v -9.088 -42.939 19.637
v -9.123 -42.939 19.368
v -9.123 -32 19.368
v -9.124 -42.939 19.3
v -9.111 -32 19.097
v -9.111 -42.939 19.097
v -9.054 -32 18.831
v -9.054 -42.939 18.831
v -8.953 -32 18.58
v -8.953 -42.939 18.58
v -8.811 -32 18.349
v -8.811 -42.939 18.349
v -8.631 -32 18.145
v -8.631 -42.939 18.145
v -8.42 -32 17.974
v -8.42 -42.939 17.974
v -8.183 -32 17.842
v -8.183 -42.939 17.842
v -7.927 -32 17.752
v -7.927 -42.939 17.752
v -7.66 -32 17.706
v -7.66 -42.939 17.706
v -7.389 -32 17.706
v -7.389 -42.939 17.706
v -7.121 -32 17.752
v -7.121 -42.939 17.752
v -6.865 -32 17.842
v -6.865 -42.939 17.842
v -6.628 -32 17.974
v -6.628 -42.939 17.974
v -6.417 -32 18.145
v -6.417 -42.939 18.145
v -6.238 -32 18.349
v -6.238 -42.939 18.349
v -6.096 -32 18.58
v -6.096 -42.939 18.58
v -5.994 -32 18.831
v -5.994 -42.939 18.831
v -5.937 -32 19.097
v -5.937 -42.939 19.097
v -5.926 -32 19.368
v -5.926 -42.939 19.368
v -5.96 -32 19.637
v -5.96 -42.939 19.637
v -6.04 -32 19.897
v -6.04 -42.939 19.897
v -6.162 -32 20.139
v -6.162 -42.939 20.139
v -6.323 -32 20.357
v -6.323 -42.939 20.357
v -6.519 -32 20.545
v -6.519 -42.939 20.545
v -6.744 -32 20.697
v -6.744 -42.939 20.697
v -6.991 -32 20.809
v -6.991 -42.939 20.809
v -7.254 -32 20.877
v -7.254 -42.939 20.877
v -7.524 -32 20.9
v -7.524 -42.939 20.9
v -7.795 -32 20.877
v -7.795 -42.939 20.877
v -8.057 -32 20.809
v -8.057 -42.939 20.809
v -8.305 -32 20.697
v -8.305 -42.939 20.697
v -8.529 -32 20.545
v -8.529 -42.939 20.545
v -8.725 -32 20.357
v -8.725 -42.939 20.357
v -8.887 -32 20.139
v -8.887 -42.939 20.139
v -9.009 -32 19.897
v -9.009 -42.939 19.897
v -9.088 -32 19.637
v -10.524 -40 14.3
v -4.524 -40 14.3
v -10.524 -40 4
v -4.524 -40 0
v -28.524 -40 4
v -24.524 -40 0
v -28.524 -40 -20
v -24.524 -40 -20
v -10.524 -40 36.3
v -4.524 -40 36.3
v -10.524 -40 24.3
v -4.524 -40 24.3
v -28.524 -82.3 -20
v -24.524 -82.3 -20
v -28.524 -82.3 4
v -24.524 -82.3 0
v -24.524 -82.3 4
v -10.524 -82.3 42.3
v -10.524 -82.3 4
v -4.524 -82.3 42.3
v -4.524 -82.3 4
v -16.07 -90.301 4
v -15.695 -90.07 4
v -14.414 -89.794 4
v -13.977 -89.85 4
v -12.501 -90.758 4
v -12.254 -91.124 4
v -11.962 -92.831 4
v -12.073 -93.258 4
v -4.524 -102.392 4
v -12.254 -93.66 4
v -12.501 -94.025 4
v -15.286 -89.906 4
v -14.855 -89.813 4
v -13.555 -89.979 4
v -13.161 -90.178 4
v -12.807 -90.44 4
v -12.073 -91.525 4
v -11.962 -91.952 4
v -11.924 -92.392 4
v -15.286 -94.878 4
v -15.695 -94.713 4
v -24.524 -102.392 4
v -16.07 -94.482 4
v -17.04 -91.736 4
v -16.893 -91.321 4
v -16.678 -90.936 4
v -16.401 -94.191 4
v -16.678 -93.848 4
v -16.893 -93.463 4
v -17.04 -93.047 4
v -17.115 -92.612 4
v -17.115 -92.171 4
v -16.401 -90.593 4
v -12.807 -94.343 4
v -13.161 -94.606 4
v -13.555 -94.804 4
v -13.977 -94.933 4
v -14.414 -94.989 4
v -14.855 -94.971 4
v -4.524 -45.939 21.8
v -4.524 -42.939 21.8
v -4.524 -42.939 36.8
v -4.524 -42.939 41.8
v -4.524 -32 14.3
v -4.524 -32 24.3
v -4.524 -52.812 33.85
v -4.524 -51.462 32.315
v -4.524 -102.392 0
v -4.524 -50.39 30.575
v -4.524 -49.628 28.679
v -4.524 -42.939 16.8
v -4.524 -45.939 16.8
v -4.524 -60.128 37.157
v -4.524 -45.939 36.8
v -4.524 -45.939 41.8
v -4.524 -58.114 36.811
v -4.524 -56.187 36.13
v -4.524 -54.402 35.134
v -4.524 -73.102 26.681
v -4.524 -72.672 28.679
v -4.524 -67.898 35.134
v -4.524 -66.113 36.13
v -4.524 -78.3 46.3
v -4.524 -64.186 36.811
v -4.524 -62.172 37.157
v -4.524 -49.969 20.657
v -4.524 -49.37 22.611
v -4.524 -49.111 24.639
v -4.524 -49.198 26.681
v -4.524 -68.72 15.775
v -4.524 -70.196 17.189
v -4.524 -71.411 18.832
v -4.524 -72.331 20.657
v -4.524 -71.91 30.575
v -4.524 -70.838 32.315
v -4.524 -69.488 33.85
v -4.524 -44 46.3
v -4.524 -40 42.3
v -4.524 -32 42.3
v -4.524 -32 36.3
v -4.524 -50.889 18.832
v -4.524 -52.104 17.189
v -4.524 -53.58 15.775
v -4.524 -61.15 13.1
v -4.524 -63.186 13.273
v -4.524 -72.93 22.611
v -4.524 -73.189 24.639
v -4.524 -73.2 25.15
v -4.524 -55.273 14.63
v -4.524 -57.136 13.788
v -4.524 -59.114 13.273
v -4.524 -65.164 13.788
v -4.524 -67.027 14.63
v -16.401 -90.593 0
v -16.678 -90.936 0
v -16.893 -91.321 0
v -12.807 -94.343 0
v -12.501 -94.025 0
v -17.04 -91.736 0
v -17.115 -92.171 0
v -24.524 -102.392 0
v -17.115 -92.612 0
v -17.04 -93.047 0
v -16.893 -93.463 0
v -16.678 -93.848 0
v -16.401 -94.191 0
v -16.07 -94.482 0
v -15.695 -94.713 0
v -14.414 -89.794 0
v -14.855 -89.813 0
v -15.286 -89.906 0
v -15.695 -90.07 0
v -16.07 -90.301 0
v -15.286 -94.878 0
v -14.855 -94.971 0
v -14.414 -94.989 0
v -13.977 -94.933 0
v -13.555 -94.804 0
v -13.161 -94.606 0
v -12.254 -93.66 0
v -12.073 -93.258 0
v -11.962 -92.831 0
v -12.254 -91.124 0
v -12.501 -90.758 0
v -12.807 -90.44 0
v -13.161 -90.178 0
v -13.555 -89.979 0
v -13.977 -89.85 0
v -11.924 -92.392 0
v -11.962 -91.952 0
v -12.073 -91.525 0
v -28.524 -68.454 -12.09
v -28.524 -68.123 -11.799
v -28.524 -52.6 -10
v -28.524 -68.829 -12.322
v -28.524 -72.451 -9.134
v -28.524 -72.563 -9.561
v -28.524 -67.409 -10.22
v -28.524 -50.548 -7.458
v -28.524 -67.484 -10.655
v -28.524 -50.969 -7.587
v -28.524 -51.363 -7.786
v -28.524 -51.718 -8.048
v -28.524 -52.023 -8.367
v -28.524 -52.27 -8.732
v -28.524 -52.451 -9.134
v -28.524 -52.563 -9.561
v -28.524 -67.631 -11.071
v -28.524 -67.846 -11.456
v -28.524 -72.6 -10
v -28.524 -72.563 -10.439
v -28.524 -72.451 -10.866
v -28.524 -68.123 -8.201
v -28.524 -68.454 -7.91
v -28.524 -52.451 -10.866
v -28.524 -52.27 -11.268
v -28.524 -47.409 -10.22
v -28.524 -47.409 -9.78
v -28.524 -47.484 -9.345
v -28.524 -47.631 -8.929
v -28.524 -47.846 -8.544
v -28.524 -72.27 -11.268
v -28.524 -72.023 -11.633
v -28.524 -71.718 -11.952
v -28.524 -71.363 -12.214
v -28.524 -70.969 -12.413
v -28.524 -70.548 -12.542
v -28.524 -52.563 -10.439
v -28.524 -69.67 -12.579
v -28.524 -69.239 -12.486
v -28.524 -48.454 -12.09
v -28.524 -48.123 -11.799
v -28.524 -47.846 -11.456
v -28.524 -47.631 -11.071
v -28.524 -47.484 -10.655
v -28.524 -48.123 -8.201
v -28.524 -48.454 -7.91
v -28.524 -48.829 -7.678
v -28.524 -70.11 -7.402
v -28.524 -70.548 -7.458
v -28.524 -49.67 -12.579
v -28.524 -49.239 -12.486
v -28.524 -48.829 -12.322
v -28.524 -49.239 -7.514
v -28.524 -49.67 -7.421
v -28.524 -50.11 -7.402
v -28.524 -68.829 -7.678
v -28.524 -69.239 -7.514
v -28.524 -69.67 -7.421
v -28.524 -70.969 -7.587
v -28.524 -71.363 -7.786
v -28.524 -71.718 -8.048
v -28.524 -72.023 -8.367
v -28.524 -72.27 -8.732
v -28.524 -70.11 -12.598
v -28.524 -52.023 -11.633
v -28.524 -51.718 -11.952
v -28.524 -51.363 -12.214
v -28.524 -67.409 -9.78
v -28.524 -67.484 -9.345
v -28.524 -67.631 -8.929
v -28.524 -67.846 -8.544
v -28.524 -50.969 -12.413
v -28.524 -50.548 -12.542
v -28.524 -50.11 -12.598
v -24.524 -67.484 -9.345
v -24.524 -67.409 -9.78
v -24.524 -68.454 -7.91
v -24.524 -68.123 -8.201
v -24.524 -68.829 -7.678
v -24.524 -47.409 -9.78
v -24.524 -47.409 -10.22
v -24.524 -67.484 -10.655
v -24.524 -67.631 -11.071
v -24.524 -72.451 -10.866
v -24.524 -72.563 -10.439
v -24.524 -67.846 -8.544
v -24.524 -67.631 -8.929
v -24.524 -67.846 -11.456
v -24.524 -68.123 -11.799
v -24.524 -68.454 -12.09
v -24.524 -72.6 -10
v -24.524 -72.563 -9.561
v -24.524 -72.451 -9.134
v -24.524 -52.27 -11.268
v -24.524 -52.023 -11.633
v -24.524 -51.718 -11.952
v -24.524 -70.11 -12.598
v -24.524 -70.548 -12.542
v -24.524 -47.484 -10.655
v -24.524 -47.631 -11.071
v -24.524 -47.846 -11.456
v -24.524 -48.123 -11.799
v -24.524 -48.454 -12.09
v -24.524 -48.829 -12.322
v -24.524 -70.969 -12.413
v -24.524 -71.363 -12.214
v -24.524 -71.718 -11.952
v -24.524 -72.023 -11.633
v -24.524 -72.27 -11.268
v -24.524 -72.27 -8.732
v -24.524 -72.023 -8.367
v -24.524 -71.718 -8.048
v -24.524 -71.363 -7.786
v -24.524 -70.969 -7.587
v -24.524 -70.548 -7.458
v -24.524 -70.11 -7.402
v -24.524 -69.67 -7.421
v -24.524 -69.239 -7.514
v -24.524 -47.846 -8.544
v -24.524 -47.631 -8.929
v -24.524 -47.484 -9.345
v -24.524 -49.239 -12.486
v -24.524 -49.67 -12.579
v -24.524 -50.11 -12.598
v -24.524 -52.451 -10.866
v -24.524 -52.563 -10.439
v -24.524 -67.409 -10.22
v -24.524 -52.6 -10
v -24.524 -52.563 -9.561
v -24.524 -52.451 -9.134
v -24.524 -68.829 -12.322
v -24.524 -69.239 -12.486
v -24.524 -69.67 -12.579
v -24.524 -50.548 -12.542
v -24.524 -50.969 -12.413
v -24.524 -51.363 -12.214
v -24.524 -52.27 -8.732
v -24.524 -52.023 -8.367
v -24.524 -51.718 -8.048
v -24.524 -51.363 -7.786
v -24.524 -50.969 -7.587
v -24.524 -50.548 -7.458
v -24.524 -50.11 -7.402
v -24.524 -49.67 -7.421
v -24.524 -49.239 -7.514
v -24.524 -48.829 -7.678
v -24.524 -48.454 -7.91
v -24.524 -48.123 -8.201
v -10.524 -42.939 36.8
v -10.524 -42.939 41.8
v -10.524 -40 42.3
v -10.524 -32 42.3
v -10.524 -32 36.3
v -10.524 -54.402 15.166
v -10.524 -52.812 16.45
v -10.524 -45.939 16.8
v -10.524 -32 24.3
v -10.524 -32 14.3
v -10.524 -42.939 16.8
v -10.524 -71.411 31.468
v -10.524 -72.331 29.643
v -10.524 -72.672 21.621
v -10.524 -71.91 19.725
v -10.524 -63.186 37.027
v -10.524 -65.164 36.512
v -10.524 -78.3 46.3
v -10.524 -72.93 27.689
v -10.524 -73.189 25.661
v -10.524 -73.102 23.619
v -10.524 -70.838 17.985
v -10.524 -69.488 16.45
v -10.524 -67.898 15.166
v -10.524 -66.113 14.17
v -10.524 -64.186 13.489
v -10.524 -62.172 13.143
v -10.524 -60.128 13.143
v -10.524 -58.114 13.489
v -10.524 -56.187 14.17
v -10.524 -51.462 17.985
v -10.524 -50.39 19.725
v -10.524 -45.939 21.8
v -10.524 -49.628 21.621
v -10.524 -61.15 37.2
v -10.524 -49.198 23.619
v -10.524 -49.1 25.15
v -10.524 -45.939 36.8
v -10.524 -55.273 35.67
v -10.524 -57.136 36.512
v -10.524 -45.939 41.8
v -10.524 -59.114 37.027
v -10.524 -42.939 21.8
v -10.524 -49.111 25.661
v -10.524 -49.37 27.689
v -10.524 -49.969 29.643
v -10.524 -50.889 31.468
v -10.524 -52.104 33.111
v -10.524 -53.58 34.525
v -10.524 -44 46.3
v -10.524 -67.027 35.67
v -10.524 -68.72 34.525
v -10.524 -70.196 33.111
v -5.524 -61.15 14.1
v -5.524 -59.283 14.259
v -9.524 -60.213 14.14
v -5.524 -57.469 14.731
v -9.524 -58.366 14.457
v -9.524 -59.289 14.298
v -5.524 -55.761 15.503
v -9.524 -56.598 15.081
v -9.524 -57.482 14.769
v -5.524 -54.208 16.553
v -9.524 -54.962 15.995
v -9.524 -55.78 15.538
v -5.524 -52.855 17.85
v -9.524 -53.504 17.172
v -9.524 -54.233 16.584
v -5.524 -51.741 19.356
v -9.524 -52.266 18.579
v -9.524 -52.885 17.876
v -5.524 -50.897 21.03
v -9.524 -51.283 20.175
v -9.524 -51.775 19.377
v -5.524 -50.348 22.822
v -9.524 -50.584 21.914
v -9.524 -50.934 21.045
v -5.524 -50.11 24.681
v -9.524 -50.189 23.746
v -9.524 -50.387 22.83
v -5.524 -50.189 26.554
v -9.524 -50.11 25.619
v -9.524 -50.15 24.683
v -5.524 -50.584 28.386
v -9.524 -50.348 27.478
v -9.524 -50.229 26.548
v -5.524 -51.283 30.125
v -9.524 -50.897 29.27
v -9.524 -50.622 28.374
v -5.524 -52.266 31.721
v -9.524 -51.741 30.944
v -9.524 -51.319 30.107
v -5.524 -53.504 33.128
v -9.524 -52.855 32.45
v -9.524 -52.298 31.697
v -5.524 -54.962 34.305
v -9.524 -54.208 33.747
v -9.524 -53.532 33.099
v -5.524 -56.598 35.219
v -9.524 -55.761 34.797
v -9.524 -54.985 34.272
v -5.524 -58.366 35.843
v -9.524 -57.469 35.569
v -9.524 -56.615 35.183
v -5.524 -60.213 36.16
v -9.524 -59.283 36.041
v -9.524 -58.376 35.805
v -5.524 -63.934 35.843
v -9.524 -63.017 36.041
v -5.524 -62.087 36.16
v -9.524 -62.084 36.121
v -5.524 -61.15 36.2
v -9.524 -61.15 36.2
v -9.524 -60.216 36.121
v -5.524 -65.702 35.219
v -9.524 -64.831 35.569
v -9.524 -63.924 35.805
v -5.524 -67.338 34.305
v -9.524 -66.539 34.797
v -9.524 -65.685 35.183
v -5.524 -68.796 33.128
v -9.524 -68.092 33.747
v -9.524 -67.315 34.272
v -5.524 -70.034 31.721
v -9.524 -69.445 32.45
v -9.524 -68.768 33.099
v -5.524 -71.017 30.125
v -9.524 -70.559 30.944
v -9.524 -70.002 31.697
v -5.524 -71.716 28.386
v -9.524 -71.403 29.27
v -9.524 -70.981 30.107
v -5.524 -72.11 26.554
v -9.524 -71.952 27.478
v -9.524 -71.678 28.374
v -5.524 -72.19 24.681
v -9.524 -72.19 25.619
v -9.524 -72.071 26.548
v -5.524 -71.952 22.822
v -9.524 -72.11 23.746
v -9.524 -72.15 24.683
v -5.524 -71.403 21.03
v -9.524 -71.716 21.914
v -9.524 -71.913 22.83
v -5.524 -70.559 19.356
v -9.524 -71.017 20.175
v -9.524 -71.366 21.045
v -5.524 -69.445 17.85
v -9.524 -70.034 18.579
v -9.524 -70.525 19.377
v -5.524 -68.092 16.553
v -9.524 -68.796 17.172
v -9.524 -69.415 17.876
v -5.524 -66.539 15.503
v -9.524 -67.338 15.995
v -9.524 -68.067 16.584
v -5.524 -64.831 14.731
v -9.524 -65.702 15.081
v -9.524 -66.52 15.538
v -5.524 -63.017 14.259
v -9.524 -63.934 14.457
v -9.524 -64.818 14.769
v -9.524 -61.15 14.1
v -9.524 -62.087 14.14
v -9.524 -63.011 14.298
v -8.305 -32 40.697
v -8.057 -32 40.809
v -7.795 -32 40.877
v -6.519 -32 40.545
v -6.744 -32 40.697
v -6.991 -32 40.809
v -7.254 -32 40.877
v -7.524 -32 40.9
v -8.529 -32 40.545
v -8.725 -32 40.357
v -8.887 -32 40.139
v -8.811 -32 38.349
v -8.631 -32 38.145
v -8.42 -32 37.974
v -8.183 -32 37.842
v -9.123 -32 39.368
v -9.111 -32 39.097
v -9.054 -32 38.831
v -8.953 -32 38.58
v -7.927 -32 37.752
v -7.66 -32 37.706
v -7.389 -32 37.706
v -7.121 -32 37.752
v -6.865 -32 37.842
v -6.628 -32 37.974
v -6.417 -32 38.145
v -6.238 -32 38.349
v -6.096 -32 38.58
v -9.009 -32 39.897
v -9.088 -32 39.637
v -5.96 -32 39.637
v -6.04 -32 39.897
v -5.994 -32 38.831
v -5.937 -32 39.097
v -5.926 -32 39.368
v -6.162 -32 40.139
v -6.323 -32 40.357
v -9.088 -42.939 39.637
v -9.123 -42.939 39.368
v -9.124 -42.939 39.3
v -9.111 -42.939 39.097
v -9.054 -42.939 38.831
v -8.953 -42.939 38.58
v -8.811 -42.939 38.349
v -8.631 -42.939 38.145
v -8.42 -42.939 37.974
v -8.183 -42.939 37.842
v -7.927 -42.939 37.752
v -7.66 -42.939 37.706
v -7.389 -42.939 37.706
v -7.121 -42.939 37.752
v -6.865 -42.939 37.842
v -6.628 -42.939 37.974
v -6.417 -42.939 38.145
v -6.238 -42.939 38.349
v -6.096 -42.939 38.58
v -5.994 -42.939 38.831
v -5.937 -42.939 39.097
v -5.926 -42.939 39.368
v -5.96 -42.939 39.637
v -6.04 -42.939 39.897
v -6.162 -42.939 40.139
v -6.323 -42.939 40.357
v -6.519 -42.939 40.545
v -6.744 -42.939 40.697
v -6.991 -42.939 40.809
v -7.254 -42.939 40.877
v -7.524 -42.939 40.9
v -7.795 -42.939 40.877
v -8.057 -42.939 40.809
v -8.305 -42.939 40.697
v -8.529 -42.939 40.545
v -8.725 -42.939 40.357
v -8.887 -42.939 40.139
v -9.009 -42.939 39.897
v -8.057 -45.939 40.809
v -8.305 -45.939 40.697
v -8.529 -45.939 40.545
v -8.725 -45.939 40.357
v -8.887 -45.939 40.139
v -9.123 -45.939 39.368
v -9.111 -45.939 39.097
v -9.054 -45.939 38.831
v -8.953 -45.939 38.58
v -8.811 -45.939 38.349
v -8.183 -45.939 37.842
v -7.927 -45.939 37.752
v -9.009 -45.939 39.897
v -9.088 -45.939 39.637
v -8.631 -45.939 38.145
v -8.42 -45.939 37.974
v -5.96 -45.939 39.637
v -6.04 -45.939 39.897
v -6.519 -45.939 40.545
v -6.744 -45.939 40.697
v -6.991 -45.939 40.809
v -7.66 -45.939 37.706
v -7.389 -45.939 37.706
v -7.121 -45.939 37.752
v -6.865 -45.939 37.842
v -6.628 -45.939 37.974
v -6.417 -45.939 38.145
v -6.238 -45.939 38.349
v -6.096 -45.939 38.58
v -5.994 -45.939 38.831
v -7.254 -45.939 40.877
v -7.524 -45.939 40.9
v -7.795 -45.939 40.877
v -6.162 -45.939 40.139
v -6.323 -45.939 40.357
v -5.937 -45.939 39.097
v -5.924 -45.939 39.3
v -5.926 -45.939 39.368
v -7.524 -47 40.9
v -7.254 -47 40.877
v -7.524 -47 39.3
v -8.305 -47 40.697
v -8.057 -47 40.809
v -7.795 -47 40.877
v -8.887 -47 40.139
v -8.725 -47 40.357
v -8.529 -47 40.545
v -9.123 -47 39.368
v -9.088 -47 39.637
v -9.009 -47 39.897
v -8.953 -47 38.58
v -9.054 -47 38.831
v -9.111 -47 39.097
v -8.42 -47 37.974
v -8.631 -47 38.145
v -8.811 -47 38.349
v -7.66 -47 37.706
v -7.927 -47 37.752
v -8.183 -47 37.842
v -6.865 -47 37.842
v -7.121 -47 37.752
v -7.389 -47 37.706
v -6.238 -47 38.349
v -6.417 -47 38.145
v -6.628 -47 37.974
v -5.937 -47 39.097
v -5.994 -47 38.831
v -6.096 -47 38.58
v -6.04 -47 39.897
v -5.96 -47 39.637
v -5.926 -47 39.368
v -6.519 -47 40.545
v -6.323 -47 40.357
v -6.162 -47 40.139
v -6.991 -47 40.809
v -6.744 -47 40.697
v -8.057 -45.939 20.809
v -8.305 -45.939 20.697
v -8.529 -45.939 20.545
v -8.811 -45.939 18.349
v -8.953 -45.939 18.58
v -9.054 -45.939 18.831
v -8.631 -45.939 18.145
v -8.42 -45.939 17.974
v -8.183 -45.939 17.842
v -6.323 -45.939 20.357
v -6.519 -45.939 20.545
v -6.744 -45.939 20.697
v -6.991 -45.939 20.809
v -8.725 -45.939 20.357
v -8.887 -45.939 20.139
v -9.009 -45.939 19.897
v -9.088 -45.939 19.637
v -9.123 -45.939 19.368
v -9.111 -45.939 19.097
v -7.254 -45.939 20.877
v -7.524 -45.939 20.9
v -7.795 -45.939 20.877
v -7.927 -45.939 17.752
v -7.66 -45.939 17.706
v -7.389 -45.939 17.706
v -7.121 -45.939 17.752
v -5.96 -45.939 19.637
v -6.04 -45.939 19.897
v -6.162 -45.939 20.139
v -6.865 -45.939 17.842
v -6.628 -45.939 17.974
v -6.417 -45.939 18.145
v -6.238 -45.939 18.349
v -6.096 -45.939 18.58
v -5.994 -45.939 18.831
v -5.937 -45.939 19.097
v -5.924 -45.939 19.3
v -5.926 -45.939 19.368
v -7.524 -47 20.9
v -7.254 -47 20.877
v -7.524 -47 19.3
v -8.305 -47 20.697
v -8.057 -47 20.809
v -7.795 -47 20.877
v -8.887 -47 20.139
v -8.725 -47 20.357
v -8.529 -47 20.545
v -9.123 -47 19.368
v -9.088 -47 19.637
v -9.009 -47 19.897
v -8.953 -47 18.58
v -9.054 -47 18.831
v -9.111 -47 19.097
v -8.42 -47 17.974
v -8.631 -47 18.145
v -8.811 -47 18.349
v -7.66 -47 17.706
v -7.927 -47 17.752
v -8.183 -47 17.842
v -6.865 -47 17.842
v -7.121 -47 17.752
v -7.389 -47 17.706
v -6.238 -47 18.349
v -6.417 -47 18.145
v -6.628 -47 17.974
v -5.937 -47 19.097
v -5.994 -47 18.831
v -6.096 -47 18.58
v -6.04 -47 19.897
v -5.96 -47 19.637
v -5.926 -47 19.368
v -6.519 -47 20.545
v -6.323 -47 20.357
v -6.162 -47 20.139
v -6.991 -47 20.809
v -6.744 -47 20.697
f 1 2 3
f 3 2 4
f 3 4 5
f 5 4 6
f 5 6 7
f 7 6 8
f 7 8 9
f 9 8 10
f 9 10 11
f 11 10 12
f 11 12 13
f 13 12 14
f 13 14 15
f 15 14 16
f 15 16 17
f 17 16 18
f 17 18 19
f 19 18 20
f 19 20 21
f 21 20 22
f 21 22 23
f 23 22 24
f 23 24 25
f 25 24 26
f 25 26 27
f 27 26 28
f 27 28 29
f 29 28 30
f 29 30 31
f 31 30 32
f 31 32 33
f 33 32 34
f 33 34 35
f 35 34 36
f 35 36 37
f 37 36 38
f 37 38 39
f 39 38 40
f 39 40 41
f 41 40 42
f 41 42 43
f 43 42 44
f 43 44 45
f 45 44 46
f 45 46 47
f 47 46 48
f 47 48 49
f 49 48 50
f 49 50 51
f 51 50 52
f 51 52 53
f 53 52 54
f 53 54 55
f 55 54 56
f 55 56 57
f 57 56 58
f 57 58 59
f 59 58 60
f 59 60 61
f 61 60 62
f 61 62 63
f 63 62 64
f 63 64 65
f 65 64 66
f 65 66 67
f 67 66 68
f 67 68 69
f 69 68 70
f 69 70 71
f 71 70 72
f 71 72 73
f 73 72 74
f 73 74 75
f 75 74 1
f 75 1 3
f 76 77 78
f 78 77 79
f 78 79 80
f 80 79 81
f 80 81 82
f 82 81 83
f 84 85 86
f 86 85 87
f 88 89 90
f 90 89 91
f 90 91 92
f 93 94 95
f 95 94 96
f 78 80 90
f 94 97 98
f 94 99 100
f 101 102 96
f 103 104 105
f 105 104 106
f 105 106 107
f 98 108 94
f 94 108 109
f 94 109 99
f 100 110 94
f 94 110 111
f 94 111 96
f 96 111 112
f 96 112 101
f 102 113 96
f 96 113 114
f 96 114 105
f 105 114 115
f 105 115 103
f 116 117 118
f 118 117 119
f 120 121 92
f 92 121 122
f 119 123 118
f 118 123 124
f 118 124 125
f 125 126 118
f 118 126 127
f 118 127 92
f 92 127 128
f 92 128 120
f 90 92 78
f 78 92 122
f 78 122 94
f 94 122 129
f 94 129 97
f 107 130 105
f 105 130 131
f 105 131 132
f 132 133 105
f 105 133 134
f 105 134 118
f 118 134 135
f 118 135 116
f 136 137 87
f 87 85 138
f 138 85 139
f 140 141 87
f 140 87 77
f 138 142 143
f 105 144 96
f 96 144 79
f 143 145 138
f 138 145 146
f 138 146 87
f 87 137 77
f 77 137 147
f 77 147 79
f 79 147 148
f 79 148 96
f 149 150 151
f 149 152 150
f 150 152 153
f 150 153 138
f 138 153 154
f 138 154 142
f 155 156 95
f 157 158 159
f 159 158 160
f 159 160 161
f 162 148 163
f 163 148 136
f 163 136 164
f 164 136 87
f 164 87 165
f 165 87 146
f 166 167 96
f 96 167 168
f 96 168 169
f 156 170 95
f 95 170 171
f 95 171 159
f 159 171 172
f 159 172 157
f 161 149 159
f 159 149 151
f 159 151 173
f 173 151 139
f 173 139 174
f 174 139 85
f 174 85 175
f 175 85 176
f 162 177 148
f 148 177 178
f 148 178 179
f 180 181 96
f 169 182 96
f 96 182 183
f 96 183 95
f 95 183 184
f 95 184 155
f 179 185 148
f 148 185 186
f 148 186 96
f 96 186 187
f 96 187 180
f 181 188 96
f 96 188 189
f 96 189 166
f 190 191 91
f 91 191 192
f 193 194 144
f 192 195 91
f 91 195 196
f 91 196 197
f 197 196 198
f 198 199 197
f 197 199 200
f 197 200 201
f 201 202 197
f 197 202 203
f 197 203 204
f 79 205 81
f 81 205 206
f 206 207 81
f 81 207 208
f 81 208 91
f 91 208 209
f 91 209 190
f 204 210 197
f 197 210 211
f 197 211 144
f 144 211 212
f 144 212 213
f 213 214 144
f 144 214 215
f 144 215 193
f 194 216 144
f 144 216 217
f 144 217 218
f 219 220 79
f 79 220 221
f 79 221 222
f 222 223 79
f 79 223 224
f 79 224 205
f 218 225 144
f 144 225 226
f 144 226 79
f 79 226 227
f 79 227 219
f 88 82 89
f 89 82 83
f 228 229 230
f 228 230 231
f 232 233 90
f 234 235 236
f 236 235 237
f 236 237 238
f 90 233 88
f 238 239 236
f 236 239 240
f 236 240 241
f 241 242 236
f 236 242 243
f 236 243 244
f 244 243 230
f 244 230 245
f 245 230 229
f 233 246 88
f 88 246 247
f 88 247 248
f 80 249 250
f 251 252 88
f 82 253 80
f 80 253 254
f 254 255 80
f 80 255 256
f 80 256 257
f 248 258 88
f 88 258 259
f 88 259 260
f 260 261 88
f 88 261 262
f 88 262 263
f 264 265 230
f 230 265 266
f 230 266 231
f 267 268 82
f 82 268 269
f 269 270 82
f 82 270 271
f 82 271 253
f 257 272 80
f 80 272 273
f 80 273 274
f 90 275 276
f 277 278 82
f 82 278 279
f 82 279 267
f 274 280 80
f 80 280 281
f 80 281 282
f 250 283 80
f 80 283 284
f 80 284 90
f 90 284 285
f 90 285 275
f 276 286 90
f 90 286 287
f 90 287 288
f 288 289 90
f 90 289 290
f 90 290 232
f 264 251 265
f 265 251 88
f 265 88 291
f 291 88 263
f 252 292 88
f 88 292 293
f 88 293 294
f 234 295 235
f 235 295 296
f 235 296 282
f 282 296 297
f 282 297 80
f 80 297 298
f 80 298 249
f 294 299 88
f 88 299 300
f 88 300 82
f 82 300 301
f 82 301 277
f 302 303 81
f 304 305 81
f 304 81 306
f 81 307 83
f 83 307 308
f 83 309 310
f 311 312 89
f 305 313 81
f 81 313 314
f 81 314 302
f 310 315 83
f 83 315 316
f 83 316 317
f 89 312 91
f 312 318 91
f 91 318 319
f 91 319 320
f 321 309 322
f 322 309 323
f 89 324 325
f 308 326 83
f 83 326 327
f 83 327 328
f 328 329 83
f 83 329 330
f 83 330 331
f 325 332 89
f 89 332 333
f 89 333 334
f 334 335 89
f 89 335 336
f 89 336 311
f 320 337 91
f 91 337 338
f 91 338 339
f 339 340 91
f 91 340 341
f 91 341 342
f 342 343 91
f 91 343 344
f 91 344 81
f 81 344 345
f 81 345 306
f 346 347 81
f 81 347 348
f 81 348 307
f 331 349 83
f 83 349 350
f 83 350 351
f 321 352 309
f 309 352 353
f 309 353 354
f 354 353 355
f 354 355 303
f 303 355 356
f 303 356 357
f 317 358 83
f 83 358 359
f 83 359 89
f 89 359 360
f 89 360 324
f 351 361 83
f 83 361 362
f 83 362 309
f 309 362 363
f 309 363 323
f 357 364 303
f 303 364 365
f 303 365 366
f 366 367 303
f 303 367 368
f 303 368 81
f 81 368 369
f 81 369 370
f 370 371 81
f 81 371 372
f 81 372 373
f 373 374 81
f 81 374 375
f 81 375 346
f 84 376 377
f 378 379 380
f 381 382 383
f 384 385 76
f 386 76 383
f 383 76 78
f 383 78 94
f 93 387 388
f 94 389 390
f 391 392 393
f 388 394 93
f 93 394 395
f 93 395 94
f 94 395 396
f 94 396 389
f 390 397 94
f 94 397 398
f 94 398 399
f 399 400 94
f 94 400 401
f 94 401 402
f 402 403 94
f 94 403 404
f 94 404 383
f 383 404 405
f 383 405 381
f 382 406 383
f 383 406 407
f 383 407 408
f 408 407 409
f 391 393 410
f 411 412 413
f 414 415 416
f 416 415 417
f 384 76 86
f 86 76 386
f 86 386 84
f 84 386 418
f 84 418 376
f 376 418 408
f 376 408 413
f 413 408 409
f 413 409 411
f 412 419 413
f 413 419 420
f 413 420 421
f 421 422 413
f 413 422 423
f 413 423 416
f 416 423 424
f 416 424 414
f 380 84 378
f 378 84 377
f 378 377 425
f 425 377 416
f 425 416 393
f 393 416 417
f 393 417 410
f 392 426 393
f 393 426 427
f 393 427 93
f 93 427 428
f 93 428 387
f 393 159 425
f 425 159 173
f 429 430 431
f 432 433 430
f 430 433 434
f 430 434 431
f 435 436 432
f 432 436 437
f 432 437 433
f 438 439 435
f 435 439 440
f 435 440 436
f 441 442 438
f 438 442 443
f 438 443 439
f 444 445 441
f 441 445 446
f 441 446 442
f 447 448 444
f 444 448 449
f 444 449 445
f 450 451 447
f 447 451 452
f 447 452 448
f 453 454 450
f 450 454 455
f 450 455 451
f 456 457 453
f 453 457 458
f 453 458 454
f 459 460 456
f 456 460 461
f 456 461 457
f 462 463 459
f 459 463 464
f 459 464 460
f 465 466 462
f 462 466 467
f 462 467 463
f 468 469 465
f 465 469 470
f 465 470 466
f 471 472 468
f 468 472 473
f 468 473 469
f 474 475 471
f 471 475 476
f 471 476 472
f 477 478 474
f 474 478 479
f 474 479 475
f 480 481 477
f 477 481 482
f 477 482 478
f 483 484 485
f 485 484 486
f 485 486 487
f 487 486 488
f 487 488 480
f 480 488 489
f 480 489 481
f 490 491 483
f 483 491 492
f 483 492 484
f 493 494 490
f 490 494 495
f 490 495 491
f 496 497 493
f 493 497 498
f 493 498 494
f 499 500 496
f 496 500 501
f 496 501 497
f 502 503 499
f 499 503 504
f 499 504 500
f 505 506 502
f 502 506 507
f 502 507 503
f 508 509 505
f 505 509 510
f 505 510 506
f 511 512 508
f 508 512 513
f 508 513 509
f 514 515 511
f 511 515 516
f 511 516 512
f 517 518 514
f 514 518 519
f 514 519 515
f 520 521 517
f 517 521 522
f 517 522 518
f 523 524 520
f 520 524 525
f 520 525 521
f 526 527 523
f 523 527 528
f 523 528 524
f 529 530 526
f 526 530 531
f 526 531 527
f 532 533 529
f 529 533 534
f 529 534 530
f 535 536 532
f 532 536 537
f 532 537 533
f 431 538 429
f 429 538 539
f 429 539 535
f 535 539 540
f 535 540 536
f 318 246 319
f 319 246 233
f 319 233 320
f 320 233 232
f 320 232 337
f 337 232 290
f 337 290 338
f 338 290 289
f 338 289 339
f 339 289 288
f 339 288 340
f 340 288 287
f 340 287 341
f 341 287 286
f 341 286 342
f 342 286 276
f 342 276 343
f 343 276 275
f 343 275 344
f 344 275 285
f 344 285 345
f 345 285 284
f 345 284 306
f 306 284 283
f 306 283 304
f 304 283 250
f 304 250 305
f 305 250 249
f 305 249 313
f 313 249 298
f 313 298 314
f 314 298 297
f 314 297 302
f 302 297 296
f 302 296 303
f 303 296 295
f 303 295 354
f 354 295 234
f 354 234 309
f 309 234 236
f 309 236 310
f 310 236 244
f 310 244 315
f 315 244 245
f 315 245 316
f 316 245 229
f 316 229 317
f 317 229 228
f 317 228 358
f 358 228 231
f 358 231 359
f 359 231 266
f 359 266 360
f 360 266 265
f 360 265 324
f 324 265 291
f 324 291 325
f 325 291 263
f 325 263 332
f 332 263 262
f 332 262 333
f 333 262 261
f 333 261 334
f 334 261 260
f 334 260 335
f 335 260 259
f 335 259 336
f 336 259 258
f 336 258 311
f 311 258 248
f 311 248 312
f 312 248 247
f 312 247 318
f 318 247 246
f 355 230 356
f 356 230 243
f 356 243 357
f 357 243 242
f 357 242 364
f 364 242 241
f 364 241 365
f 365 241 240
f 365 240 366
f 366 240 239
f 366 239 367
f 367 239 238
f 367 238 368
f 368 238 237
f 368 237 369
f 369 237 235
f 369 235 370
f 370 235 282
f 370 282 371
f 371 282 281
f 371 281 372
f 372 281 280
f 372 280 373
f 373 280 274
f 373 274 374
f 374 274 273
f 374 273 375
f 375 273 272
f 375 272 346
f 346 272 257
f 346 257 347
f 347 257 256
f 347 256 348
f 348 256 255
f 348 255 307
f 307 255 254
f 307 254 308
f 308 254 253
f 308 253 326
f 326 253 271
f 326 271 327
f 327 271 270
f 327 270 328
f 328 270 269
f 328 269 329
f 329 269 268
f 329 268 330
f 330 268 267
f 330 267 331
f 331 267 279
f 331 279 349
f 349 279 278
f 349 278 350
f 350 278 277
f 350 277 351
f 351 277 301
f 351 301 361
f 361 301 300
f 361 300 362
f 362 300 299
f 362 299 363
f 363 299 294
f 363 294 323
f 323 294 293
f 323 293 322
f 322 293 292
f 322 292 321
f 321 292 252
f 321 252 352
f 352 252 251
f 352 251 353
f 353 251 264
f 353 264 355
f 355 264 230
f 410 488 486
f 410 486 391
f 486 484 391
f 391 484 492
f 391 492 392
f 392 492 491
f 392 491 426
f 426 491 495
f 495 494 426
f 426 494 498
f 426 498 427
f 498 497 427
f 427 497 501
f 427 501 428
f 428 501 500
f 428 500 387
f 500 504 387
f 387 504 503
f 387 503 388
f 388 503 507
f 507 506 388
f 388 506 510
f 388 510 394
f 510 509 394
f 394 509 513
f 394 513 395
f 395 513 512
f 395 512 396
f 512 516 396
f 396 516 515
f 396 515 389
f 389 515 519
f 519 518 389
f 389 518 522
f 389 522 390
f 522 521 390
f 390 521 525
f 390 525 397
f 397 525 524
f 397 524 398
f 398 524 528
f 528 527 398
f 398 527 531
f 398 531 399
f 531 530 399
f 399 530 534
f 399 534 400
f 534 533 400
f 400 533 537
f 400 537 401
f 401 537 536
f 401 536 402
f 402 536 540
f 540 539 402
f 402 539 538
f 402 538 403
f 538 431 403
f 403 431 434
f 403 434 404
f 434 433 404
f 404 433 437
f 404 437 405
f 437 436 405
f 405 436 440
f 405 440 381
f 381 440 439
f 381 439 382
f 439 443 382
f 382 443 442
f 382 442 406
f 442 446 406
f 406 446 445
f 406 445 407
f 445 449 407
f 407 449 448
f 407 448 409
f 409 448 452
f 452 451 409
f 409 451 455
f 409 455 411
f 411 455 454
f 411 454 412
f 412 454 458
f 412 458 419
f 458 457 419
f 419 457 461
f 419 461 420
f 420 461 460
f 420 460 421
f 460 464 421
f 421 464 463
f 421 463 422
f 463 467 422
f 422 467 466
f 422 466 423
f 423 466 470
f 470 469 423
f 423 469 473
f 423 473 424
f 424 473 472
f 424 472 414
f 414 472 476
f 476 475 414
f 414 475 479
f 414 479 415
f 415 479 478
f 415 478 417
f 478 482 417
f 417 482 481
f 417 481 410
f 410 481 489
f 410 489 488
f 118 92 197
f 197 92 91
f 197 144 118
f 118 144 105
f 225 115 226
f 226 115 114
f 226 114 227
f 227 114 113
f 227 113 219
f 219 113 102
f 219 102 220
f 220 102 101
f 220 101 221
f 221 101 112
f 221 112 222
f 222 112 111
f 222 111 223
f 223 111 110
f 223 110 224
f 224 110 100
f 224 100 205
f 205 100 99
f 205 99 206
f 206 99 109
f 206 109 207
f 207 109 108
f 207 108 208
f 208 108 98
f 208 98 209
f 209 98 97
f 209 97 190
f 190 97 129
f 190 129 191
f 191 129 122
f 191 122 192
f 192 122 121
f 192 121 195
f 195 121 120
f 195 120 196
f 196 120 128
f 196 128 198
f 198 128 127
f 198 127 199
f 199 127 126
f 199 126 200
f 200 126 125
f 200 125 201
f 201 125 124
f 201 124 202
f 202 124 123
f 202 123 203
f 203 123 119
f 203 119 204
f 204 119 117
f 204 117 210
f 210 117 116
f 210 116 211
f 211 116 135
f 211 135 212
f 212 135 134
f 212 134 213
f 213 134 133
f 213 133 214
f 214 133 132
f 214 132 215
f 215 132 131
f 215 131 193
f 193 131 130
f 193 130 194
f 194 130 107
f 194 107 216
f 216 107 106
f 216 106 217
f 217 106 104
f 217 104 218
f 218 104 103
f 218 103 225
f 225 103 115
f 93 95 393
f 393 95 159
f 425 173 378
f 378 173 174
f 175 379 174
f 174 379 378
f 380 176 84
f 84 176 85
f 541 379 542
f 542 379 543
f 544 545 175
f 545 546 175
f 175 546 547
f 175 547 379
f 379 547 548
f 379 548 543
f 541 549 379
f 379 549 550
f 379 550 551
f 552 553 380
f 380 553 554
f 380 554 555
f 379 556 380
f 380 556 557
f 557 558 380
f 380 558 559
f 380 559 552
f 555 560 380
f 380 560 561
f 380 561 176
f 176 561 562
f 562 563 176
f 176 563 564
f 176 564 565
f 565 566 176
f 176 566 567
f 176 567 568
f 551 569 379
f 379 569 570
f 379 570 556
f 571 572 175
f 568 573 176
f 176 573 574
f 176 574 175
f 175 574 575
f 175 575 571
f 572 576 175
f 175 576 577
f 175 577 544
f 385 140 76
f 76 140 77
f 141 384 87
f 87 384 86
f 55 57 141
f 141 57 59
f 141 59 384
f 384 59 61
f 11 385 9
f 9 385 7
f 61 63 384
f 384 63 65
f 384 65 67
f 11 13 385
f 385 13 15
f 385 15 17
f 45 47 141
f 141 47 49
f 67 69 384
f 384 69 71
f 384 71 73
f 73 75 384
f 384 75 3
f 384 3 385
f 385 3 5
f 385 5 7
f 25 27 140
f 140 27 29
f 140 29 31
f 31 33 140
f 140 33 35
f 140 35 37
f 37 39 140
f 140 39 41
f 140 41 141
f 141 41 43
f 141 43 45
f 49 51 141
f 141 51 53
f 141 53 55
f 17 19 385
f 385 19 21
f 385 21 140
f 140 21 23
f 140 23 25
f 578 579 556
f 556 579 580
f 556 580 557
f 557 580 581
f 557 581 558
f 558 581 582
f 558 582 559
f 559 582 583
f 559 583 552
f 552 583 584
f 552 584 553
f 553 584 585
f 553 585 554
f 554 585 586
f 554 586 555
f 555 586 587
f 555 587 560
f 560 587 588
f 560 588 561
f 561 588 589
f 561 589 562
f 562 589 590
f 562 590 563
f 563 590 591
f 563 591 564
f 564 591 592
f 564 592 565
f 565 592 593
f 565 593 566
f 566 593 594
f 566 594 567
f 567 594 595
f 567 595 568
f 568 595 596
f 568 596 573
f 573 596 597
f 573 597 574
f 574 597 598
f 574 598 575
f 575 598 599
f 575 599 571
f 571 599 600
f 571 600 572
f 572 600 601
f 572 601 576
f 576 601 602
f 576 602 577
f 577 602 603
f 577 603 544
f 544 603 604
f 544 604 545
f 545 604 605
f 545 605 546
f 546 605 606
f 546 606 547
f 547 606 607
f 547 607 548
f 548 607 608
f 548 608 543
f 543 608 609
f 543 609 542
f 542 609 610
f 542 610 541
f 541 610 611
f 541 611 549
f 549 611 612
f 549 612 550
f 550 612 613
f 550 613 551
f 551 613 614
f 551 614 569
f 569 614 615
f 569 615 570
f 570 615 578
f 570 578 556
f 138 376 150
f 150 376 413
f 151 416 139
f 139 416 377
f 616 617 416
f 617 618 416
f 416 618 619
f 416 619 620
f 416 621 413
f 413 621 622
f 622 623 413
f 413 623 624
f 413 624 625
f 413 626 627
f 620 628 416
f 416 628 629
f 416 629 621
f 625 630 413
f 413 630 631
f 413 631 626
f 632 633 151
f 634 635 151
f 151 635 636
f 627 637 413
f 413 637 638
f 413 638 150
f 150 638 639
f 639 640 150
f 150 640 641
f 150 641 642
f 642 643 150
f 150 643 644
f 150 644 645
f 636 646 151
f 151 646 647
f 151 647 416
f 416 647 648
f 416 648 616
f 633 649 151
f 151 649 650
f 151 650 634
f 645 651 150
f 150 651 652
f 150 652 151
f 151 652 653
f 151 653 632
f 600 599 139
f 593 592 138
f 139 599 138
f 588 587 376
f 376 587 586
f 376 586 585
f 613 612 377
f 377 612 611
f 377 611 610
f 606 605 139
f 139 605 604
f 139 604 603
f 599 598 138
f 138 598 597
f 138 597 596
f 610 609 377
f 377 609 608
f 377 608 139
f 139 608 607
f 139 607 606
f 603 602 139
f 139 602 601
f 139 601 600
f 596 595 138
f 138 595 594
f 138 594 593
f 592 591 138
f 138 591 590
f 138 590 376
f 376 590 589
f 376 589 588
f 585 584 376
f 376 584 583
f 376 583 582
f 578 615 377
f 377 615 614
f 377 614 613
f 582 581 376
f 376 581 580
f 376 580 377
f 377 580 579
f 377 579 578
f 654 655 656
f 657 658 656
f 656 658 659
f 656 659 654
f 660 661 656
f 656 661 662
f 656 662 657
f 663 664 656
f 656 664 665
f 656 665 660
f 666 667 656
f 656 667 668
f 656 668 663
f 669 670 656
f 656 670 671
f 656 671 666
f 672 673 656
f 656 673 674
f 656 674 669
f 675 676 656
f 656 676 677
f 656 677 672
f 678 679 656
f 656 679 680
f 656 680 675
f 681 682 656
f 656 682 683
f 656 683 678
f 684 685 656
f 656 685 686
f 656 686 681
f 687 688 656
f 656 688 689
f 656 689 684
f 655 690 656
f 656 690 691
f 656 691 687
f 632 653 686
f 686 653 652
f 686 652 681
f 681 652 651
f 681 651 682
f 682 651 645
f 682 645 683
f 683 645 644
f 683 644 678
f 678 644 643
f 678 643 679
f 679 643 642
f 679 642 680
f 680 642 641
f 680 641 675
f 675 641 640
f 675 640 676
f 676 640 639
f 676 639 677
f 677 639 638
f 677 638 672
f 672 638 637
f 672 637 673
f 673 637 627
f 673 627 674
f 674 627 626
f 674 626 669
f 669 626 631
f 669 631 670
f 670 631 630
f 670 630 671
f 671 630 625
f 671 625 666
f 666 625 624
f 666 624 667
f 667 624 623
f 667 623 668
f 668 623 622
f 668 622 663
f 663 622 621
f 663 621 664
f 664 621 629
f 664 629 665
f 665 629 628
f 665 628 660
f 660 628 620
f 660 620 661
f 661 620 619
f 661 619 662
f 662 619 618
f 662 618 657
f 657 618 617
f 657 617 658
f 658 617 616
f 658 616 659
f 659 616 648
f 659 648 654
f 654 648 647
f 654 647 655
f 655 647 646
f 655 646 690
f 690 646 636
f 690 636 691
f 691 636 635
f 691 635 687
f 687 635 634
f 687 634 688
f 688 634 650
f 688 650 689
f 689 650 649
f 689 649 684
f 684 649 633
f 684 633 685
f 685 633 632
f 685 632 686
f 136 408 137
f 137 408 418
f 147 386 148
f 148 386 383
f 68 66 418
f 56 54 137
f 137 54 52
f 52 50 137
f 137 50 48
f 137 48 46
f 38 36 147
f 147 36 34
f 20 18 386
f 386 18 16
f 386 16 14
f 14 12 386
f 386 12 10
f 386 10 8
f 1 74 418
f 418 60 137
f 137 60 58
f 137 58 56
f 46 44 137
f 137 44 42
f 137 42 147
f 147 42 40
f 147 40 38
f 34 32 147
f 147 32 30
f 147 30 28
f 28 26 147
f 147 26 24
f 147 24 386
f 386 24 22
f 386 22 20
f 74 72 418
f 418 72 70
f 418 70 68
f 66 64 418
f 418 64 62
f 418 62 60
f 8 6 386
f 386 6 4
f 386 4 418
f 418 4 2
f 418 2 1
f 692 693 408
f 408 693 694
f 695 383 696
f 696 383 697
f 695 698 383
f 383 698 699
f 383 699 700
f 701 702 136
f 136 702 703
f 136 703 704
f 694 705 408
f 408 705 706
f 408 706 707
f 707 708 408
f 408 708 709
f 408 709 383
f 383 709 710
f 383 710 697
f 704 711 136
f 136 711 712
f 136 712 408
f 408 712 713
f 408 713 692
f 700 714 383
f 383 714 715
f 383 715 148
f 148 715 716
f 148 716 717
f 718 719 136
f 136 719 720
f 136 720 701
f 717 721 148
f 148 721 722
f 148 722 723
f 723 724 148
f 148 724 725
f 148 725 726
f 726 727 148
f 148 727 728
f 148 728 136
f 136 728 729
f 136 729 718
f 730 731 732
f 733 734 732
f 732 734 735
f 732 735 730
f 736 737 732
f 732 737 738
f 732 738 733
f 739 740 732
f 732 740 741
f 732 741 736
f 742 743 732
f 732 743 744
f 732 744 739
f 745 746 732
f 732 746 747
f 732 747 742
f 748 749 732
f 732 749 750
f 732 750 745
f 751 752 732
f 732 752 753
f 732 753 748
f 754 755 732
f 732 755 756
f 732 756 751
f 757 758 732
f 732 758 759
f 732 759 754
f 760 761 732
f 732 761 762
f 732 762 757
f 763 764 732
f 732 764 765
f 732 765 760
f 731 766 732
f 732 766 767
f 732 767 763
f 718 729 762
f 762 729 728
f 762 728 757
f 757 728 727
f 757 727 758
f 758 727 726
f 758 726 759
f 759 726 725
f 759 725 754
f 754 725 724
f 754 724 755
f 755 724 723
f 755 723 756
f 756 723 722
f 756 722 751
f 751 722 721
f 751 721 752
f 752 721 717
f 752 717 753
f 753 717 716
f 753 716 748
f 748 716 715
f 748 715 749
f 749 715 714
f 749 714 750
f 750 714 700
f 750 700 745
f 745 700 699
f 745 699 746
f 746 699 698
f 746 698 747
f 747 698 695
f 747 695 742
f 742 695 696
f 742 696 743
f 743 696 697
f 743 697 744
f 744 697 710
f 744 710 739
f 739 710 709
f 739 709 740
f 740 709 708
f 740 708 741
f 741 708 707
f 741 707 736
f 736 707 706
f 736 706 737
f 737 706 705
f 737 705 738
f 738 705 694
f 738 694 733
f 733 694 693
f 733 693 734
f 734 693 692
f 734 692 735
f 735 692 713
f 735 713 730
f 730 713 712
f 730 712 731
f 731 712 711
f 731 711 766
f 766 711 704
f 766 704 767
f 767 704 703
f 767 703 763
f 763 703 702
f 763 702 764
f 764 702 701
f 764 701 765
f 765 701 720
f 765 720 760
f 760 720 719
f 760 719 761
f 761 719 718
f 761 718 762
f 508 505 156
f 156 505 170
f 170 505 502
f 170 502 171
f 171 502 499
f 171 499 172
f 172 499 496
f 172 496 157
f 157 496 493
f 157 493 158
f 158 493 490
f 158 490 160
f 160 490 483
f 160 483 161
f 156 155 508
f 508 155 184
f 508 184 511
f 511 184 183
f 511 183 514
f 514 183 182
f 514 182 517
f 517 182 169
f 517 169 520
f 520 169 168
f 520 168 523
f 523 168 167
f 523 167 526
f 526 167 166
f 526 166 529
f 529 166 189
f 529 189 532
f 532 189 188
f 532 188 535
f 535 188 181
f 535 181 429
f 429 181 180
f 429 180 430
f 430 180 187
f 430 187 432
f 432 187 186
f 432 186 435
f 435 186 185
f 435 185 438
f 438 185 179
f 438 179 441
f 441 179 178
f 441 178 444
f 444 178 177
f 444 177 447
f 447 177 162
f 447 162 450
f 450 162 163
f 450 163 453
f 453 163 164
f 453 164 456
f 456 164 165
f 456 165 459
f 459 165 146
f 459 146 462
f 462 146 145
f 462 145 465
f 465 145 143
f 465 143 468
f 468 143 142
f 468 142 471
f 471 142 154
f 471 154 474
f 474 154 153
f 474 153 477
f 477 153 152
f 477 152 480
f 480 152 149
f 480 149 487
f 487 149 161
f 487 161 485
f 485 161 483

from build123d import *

# Parameters (mm, degrees)
SKICA2_W                 = 20
SKICA2_H                 = 42.3
P_IDAT_VYSUNUT_M1_DEPTH  = 4
SKICA3_W                 = 24
SKICA3_H                 = 42.3
P_IDAT_VYSUNUT_M2_DEPTH  = 4
SKICA4_W                 = 6
SKICA4_H                 = 42.3
P_IDAT_VYSUNUT_M3_DEPTH  = 42.3
SKICA5_R                 = 11.05
ODEBRAT_VYSUNUT_M1_DEPTH = 7
SKICA7_R                 = 2.6
ODEBRAT_VYSUNUT_M3_DEPTH = 4
ZKOSEN_1_SIZE            = 1
SKICA8_W                 = 20
SKICA8_H                 = 4
P_IDAT_VYSUNUT_M4_DEPTH  = 20.091596743
SKICA9_R                 = 2.6
ODEBRAT_VYSUNUT_M4_DEPTH = 4
ODEBRAT_VYSUNUT_M5_DEPTH = 80
SKICA11_W                = 6
SKICA11_H                = 6
SKICA11_H_2              = 10
P_IDAT_VYSUNUT_M5_DEPTH  = 8
SKICA13_R                = 1.6
ODEBRAT_VYSUNUT_M6_DEPTH = 15
SKICA14_W                = 5
SKICA14_H                = 3
ODEBRAT_VYSUNUT_M7_DEPTH = 15
ZKOSEN_2_SIZE            = 1


with BuildPart() as part:
    # Skica2 → Přidat vysunutím1 (new body)
    with BuildSketch(Plane.XY):
        with Locations((-14.524287798, -61.15)):
            Rectangle(SKICA2_W, SKICA2_H)
    extrude(amount=P_IDAT_VYSUNUT_M1_DEPTH)

    # Skica3 → Přidat vysunutím2 (add)
    with BuildSketch(Plane.ZY.offset(24.524287798)):
        with Locations((-8, -61.15)):
            Rectangle(SKICA3_W, SKICA3_H)
    extrude(amount=P_IDAT_VYSUNUT_M2_DEPTH)

    # Skica4 → Přidat vysunutím3 (add)
    with BuildSketch(Plane.XY.offset(4)):
        with Locations((-7.524287798, -61.15)):
            Rectangle(SKICA4_W, SKICA4_H)
    extrude(amount=P_IDAT_VYSUNUT_M3_DEPTH)

    # Skica5 → Odebrat vysunutím1 (cut)
    with BuildSketch(Plane(origin=(-4.524287798, 0, 0), x_dir=(0, 0, -1), z_dir=(1, 0, 0))):
        with Locations((-25.15, -61.15)):
            Circle(SKICA5_R)
    extrude(amount=-ODEBRAT_VYSUNUT_M1_DEPTH, mode=Mode.SUBTRACT)

    # Skica7 → Odebrat vysunutím3 (cut)
    with BuildSketch(Plane.ZY.offset(28.524287798)):
        with Locations(Location((-10, -50, 0), (0, 0, 270))):
            Circle(SKICA7_R)
        with Locations(Location((-10, -70, 0), (0, 0, 270))):
            Circle(SKICA7_R)
    extrude(amount=-ODEBRAT_VYSUNUT_M3_DEPTH, mode=Mode.SUBTRACT)

    # Zkosení1
    zkosen_1_edges = [part.edges().sort_by_distance(p)[0] for p in [
        (-10.524287798, -61.15, 36.2),
    ]]
    chamfer(zkosen_1_edges, length=ZKOSEN_1_SIZE)

    # Skica8 → Přidat vysunutím4 (add)
    with BuildSketch(Plane.XZ.offset(82.3)):
        with Locations((-14.524287798, 2)):
            Rectangle(SKICA8_W, SKICA8_H)
    extrude(amount=P_IDAT_VYSUNUT_M4_DEPTH)

    # Skica9 → Odebrat vysunutím4 (cut)
    with BuildSketch(Plane.XY.offset(4)):
        with Locations((-14.524287798, -92.391596743)):
            Circle(SKICA9_R)
    extrude(amount=-ODEBRAT_VYSUNUT_M4_DEPTH, mode=Mode.SUBTRACT)

    # Skica10 → Odebrat vysunutím5 (cut)
    with BuildSketch(Plane.ZY.offset(10.524287798)):
        Polygon((46.3, -44), (42.3, -40), (46.565878614, -39.259270079), align=None)
        Polygon((42.3, -82.3), (46.3, -78.3), (47.745576453, -80.3), (46.3, -85.415433185), align=None)
    extrude(amount=-ODEBRAT_VYSUNUT_M5_DEPTH, mode=Mode.SUBTRACT)

    # Skica11 → Přidat vysunutím5 (add)
    with BuildSketch(Plane(origin=(0, -40, 0), x_dir=(1, 0, 0), z_dir=(0, 1, 0))):
        with Locations((-7.524287798, -39.3)):
            Rectangle(SKICA11_W, SKICA11_H)
        with Locations((-7.524287798, -19.3)):
            Rectangle(SKICA11_W, SKICA11_H_2)
    extrude(amount=P_IDAT_VYSUNUT_M5_DEPTH)

    # Skica13 → Odebrat vysunutím6 (cut)
    with BuildSketch(Plane(origin=(0, -32, 0), x_dir=(1, 0, 0), z_dir=(0, 1, 0))):
        with Locations(Location((-7.524287798, -39.3, 0), (0, 0, 270))):
            Circle(SKICA13_R)
        with Locations(Location((-7.524287798, -19.3, 0), (0, 0, 270))):
            Circle(SKICA13_R)
    extrude(amount=-ODEBRAT_VYSUNUT_M6_DEPTH, mode=Mode.SUBTRACT)

    # Skica14 → Odebrat vysunutím7 (cut)
    with BuildSketch(Plane(origin=(-4.524287798, 0, 0), x_dir=(0, 0, -1), z_dir=(1, 0, 0))):
        with Locations((-39.3, -44.438988808)):
            Rectangle(SKICA14_W, SKICA14_H)
        with Locations((-19.3, -44.438988808)):
            Rectangle(SKICA14_W, SKICA14_H)
    extrude(amount=-ODEBRAT_VYSUNUT_M7_DEPTH, mode=Mode.SUBTRACT)

    # Zkosení2
    zkosen_2_edges = [part.edges().sort_by_distance(p)[0] for p in [
        (-4.524287798, -61.15, 36.2),
    ]]
    chamfer(zkosen_2_edges, length=ZKOSEN_2_SIZE)


solid = part.part
